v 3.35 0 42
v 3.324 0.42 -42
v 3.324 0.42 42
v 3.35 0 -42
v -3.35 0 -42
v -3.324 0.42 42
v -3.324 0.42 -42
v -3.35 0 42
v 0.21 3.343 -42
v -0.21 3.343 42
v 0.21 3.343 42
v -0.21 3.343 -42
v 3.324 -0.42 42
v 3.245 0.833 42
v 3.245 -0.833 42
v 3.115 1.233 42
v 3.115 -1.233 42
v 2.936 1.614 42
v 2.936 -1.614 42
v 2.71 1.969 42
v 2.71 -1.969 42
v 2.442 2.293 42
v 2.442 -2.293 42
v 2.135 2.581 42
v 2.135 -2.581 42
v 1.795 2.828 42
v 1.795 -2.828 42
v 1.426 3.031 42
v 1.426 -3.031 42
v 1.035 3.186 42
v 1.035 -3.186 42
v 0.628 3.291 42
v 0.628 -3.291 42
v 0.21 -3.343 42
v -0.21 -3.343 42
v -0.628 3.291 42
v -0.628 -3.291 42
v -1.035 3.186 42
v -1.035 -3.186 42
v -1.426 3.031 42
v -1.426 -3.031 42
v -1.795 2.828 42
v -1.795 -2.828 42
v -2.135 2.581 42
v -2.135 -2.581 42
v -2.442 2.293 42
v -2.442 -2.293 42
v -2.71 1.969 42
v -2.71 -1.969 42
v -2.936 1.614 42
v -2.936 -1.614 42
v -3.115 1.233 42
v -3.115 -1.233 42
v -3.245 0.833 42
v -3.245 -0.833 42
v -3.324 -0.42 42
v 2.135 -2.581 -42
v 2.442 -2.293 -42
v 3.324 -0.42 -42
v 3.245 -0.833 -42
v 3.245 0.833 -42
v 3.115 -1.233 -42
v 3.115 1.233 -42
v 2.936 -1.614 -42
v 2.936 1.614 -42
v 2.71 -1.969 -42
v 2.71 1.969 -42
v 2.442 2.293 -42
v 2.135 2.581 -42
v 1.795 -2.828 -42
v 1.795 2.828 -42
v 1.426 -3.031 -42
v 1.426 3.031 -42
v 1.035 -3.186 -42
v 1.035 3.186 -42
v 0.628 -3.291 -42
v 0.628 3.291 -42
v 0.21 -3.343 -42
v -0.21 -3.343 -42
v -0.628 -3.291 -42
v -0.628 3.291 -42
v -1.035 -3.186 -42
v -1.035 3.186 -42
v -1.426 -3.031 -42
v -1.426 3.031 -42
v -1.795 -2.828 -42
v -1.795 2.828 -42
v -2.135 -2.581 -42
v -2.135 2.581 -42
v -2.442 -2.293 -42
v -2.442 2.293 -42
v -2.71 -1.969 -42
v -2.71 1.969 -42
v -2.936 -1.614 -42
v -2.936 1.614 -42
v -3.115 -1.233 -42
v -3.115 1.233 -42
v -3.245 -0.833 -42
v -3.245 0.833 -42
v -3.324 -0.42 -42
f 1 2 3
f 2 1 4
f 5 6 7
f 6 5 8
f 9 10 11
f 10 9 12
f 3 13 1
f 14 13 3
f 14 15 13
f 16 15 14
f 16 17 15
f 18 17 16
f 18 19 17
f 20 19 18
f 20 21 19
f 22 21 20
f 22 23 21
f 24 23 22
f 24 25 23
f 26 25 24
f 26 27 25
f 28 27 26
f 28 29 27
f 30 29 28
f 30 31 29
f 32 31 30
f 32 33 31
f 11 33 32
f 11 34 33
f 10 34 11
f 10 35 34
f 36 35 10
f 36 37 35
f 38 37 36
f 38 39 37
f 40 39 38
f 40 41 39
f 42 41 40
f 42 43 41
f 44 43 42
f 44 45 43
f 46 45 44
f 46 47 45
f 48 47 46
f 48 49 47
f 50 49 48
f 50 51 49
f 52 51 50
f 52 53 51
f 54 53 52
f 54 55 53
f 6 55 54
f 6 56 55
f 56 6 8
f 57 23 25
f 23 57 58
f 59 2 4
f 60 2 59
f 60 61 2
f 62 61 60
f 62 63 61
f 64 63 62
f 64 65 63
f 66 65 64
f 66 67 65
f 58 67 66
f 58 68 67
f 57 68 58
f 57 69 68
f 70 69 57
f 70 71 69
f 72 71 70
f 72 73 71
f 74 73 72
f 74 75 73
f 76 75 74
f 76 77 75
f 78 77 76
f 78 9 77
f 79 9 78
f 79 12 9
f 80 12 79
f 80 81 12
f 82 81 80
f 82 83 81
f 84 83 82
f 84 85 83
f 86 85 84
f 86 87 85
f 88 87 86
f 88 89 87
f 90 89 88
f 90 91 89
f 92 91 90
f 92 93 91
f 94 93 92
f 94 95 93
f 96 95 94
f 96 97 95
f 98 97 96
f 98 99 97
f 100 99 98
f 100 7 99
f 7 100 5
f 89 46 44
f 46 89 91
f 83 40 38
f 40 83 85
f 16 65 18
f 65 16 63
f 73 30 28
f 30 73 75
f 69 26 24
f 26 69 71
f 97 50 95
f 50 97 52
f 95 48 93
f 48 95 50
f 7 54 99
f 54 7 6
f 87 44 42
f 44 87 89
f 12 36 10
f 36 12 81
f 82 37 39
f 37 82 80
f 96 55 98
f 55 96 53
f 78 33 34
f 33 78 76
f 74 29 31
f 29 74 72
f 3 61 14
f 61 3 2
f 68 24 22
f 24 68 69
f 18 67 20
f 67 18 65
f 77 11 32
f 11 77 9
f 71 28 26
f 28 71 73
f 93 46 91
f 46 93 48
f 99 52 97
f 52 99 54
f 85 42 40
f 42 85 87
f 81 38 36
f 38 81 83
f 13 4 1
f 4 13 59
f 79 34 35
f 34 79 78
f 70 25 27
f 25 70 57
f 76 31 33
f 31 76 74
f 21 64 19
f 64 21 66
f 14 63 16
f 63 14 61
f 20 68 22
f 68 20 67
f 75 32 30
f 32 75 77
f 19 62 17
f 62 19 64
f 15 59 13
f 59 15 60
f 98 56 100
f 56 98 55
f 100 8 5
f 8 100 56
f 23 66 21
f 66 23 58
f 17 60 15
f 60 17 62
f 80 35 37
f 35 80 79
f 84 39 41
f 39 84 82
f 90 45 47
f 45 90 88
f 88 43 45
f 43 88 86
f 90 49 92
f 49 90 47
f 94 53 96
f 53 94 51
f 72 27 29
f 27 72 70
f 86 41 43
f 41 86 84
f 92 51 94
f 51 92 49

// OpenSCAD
$fn = 50;


difference() {
	union() {
		translate(v = [0, 0, -42.0000000000]) {
			cylinder(h = 84, r = 3.3500000000);
		}
	}
	union() {
		translate(v = [0, 0, -100.0000000000]) {
			cylinder(h = 200, r = 0);
		}
	}
}
